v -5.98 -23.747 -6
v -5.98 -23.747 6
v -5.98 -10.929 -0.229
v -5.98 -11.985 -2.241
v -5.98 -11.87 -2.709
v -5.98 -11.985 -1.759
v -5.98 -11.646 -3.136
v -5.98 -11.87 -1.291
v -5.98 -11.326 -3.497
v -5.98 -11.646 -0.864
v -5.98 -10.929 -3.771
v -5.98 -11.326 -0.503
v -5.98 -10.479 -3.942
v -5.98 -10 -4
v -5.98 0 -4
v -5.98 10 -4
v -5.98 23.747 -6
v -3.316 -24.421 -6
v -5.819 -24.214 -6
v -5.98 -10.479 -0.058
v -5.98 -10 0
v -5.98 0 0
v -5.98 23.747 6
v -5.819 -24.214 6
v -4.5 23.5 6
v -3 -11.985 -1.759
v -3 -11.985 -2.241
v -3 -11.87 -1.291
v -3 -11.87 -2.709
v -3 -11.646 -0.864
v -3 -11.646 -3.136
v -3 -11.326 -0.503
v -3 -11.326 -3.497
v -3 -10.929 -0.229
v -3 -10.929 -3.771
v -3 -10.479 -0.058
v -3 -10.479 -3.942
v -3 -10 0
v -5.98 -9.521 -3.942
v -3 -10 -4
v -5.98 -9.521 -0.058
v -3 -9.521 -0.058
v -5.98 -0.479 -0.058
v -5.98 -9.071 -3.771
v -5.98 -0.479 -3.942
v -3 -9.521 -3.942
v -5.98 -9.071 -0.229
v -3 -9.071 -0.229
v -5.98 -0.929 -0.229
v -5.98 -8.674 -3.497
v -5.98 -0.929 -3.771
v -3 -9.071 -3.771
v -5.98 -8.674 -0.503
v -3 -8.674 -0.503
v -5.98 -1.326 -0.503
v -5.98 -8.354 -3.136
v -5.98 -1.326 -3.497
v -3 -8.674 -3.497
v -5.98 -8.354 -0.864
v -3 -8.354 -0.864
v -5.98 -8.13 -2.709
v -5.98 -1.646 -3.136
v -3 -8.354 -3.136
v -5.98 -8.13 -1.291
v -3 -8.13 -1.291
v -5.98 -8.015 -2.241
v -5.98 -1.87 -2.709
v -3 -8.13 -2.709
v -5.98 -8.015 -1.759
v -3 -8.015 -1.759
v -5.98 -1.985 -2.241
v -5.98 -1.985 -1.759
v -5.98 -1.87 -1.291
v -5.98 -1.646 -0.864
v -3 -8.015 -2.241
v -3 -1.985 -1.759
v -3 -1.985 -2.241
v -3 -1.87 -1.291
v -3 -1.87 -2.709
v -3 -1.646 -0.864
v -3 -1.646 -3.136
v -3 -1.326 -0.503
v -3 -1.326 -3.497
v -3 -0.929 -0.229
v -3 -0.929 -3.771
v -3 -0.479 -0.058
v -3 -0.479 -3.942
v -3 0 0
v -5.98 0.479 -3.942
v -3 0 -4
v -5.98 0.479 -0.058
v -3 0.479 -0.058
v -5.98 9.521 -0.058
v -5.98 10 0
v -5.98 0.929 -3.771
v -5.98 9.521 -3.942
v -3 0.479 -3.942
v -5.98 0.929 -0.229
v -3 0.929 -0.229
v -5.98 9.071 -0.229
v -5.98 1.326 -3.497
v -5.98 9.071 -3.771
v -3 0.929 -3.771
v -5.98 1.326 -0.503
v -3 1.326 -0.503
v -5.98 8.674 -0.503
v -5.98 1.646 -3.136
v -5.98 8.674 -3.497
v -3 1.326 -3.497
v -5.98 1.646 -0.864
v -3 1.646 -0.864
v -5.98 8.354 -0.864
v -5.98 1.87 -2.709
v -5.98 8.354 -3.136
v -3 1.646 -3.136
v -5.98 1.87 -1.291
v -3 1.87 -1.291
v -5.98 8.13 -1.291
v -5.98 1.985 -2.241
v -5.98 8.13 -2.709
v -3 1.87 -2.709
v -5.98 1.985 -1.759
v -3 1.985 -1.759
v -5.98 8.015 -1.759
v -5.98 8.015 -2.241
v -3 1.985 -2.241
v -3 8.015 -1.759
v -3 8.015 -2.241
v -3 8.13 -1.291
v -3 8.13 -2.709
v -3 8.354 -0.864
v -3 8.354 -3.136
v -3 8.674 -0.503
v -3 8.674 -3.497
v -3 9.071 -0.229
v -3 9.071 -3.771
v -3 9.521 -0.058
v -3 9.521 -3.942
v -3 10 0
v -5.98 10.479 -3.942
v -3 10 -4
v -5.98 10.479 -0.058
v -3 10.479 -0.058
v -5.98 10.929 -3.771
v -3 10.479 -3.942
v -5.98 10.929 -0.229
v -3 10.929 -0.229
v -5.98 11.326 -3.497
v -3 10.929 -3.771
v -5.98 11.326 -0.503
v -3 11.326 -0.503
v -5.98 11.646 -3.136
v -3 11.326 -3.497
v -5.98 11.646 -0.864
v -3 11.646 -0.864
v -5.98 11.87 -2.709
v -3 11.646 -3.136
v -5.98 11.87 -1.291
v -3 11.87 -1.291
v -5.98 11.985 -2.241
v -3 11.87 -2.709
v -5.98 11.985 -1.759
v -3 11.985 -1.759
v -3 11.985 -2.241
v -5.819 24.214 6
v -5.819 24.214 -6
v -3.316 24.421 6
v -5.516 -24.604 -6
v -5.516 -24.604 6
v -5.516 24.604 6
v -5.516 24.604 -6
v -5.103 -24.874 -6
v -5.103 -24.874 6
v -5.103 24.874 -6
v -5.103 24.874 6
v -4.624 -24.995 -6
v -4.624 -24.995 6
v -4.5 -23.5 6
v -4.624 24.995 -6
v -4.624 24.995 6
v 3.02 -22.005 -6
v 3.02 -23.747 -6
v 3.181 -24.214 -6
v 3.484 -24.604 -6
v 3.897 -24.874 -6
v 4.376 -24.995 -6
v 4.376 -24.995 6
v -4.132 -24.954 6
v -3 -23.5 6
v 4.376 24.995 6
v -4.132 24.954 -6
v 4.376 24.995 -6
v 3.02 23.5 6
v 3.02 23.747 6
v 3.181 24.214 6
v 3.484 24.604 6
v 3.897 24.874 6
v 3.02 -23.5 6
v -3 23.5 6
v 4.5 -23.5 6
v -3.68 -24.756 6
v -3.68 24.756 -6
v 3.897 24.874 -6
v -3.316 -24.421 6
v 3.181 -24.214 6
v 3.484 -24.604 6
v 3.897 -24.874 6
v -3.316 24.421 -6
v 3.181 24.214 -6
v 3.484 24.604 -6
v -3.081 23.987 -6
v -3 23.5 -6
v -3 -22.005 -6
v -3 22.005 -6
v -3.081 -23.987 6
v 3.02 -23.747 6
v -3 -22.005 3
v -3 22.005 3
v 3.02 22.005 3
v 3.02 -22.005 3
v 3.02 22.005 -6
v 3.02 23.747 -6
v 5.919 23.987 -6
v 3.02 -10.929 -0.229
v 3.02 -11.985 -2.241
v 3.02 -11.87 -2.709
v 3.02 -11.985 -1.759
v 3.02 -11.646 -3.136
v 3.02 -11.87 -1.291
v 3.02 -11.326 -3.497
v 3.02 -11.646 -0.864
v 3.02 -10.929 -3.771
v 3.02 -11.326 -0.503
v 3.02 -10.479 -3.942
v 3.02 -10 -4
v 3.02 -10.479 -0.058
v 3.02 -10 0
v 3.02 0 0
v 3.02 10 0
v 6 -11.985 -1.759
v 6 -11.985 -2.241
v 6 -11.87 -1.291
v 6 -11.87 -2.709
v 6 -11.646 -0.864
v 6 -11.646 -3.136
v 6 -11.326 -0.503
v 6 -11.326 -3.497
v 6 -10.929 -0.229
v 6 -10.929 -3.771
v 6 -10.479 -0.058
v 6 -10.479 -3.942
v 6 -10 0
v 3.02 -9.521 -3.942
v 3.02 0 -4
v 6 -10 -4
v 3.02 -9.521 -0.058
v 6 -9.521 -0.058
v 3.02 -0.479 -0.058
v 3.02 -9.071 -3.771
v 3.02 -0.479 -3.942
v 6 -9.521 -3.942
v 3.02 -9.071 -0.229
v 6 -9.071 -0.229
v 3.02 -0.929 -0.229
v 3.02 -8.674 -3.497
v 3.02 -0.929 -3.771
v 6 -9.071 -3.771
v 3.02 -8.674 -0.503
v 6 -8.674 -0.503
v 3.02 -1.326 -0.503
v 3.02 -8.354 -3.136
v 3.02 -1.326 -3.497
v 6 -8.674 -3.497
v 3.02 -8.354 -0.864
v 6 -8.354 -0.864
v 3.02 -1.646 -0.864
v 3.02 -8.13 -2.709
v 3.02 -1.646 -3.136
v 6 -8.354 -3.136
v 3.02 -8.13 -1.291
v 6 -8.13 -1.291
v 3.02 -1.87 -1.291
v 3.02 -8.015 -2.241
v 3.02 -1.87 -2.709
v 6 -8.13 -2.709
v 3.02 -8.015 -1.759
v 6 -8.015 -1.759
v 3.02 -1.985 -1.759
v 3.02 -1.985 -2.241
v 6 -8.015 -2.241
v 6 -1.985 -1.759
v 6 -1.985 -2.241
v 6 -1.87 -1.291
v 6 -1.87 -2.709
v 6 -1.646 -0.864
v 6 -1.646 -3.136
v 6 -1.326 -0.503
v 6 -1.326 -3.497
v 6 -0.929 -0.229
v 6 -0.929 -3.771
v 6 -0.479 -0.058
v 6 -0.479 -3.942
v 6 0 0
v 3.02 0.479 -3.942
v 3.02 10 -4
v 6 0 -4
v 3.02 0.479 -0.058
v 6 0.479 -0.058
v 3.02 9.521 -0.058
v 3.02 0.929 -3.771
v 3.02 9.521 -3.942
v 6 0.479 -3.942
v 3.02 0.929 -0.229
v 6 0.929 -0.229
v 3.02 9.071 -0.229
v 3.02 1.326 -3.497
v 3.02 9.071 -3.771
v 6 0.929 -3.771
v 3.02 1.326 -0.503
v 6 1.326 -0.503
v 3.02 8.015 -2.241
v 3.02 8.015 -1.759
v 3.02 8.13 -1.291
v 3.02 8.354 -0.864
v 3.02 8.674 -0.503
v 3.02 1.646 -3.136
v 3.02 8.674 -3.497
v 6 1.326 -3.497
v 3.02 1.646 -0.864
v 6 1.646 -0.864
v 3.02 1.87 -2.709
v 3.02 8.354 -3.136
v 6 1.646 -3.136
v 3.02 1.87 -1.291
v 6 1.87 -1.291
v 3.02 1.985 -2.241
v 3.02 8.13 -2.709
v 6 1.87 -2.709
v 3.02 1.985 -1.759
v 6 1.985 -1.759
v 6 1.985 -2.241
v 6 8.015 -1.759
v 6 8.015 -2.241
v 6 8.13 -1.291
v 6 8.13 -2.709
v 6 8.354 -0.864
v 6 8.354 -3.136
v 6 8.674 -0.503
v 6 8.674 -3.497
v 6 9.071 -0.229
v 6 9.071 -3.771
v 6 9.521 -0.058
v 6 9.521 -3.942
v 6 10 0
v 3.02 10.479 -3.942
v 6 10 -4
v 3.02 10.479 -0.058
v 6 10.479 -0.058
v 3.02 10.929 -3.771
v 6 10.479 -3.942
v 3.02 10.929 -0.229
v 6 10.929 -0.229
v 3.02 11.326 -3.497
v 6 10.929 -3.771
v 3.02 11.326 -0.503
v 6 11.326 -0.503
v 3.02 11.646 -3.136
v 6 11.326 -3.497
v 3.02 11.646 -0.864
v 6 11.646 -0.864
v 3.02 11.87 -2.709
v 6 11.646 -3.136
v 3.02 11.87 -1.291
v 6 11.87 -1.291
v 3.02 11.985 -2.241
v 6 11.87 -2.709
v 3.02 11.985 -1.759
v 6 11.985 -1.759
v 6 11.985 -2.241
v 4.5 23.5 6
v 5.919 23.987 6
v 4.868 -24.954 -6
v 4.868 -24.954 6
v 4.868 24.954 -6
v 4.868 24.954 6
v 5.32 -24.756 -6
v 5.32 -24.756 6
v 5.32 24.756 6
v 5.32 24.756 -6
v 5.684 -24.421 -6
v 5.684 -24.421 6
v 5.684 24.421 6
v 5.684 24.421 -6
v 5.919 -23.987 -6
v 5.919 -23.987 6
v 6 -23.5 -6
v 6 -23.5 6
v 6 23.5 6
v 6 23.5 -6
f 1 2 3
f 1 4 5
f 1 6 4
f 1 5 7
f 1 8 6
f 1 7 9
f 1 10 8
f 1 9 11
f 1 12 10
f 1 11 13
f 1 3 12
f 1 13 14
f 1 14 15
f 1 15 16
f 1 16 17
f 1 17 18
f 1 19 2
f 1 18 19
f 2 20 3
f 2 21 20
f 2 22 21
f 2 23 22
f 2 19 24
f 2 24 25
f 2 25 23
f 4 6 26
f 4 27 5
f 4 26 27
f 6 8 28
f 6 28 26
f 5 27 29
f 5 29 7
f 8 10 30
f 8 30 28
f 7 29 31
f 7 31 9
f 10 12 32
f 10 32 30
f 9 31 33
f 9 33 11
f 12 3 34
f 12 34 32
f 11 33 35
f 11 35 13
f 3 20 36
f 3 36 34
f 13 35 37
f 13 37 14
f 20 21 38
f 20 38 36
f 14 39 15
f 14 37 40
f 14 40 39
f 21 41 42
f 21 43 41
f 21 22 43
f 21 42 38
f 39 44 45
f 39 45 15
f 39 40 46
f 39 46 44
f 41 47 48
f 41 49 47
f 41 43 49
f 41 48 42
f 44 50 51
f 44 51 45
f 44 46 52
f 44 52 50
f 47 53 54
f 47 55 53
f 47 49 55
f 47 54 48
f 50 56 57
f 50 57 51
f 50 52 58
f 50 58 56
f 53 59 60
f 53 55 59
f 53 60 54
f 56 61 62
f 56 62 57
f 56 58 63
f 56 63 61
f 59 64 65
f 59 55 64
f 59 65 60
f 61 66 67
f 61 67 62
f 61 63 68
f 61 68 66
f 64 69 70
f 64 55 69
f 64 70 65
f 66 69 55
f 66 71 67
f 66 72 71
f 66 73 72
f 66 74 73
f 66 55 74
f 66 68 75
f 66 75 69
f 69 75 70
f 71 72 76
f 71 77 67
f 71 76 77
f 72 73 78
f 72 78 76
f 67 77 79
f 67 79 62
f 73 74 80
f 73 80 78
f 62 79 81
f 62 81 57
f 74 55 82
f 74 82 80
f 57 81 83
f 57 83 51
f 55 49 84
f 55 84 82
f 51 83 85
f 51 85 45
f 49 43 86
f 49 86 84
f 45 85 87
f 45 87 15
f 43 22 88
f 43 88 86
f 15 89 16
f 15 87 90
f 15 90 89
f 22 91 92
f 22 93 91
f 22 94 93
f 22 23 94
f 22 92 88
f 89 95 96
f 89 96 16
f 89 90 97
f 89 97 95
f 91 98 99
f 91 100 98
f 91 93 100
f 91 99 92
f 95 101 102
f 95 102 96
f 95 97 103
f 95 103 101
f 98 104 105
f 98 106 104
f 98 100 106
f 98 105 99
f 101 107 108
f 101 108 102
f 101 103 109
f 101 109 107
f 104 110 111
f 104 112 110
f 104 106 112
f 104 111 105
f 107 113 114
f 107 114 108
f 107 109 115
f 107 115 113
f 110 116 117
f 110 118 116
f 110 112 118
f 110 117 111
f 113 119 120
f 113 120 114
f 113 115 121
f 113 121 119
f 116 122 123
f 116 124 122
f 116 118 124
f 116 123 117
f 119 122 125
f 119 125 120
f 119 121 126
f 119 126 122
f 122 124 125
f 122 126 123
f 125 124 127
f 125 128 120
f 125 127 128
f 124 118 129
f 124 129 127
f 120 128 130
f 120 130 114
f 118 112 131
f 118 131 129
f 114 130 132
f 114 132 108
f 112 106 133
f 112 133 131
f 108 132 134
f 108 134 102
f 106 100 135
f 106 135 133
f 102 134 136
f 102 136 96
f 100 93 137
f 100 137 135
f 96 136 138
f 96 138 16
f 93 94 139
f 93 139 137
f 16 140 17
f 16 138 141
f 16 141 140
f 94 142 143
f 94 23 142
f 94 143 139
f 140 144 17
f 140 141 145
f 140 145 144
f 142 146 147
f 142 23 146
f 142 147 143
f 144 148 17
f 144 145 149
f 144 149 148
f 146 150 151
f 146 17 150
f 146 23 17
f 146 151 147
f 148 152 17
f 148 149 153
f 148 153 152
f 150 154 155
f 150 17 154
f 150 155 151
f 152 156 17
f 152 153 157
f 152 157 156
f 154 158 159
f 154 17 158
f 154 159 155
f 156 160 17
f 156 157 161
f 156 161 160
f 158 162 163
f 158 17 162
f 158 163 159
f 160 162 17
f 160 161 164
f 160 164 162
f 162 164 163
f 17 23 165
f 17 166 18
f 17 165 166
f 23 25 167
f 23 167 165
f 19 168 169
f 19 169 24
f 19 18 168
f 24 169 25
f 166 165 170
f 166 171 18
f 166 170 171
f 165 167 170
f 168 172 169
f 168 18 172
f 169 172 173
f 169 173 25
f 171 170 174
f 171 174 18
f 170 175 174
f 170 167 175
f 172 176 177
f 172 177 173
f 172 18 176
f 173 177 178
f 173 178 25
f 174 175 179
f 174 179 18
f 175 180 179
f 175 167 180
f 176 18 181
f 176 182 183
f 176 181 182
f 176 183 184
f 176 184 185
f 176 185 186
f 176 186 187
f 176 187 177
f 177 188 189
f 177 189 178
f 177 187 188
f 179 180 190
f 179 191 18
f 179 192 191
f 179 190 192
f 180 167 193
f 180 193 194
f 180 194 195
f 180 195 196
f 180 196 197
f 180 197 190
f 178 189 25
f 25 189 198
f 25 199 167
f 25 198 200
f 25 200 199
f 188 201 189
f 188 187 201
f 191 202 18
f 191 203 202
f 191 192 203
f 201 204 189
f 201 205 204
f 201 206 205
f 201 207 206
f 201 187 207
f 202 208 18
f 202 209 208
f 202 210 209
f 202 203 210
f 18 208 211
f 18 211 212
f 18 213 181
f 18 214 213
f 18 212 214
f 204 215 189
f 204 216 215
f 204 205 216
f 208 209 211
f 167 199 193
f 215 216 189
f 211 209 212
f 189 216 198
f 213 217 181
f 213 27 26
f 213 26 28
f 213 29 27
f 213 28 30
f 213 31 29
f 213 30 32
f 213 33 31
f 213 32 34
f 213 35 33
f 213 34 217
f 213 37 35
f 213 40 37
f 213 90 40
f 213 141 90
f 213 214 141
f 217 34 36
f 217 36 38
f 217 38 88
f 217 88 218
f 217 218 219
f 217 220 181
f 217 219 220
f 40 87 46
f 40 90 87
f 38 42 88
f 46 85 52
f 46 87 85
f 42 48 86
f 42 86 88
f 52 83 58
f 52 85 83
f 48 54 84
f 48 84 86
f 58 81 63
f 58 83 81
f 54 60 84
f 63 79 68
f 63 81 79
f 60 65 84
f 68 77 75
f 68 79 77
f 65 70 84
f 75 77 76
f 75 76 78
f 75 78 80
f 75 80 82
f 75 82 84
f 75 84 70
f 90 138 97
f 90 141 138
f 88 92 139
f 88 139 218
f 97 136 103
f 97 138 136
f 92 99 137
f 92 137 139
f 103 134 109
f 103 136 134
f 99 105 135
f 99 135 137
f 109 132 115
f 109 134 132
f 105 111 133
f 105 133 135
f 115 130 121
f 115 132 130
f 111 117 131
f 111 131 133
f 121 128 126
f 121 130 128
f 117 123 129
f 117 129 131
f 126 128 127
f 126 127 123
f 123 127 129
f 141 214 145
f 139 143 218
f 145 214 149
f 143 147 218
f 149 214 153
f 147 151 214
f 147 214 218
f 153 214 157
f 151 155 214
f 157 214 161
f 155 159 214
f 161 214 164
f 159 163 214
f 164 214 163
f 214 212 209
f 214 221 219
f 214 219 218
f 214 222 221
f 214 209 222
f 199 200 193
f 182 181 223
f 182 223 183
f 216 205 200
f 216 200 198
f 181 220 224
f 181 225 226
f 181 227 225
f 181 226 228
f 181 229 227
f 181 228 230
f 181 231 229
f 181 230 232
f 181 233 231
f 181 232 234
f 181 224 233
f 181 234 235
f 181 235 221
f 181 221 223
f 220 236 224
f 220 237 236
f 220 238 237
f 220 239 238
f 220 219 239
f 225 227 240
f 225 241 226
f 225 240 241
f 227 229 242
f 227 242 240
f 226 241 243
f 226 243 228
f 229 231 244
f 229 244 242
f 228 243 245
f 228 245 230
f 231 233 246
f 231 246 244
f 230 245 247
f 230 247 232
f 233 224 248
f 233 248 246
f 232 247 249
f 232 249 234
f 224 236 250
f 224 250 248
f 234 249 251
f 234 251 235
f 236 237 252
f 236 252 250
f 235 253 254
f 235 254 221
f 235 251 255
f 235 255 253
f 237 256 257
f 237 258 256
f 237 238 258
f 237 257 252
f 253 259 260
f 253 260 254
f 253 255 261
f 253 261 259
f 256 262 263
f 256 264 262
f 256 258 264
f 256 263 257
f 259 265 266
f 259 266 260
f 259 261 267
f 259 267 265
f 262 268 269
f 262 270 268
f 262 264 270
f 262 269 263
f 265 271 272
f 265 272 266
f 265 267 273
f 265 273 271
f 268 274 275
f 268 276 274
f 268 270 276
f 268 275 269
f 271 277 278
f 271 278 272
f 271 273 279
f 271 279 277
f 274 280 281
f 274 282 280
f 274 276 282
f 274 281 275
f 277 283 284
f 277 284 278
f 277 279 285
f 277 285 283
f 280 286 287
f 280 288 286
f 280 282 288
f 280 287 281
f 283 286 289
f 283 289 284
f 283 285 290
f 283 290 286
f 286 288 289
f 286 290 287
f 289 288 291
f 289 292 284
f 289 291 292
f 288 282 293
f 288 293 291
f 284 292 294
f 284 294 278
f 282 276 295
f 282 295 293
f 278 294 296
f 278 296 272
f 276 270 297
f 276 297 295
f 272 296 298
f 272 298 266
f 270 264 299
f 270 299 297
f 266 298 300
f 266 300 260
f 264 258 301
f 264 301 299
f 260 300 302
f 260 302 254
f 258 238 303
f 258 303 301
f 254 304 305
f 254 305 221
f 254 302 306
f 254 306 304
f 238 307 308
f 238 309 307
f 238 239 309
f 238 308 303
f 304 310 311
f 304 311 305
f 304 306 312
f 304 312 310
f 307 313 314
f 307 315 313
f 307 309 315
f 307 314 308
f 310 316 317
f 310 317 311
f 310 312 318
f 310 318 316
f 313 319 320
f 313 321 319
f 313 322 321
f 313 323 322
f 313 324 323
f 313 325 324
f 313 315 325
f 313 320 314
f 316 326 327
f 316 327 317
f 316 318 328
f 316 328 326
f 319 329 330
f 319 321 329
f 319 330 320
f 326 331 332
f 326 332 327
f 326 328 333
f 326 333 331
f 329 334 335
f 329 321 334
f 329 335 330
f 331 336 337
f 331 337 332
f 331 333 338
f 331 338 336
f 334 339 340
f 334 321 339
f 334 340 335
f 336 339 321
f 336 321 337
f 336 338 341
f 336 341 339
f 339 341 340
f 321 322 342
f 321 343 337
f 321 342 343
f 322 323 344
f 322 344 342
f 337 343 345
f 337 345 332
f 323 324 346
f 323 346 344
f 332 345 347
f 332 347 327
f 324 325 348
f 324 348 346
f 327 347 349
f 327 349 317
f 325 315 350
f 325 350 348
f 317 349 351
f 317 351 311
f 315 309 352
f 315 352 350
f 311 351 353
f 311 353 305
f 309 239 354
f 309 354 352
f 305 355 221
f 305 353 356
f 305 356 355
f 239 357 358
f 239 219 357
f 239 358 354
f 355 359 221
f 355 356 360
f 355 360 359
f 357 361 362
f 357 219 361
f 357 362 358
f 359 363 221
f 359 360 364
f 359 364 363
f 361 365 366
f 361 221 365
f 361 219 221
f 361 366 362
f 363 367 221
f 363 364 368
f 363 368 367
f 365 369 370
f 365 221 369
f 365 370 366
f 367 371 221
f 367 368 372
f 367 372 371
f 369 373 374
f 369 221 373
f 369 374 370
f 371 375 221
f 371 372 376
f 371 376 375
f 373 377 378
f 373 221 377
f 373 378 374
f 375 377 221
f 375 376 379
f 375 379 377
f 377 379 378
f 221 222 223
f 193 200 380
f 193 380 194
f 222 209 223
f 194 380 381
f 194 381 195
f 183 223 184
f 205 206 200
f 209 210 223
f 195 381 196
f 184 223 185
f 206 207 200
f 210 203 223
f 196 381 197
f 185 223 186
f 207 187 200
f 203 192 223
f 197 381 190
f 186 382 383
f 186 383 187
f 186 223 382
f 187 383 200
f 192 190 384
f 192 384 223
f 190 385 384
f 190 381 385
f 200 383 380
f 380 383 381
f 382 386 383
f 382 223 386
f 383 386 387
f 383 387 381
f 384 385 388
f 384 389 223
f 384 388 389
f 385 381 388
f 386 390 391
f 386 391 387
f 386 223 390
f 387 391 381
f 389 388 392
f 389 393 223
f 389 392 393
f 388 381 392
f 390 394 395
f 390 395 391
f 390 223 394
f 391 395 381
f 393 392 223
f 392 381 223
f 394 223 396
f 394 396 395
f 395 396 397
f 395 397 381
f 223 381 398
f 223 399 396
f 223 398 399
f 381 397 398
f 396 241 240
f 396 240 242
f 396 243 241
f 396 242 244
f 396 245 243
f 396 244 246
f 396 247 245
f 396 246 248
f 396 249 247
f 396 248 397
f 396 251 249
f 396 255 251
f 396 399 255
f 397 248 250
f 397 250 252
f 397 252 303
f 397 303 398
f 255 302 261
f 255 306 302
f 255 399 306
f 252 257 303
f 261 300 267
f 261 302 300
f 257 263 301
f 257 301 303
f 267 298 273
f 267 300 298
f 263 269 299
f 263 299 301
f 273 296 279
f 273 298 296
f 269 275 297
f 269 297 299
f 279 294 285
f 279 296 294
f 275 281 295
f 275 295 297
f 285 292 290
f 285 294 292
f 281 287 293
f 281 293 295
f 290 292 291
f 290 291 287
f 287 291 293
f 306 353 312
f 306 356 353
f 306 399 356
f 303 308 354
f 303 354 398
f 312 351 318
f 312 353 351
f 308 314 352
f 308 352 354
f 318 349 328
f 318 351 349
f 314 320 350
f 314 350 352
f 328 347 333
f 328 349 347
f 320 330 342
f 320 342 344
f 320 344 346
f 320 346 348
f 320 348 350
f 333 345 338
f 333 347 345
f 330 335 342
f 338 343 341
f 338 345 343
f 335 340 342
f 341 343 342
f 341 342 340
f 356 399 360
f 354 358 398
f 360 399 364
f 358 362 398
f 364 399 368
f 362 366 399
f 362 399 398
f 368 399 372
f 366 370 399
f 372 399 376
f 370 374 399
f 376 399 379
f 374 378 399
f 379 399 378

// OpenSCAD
$fa=1/1;
$fs=1/2;
module camera_spacer() {
  height=12;
  width=50;
  depth=12;
  wall=3;
  rounded=5;
  n_holes=3;
  hole_distance=10;
  d_bolt=4;
  d_nut=0;//8;
  nuts_through=true;
  bolts_offset=4;
  bissl=1/100;
  points=[for (i=[-1,1]) for (j=[-1,1]) [i*(height/2-wall/2),j*(width/2-wall/2)]];
  connections=[[0,1],[2,3],[2,0],[3,1]];//,[1,3],[2,0]];
  difference() {
    for (c=connections) hull() {
      translate(points[c[0]])cylinder (d=wall,h=depth,center=true);
      translate(points[c[1]])cylinder (d=wall,h=depth,center=true);
    }
  for (t=[-hole_distance*(n_holes-1)/2:hole_distance:hole_distance*(n_holes-1)/2])
    translate([0,t,bolts_offset-depth/2]) {
      translate([-height/2-bissl,0,0]) rotate([0,90,0])cylinder(d=d_bolt,h=wall+2*bissl);
      translate([-height/2-bissl+wall/2,0,0])rotate([90,0,90])cylinder(d=d_nut,h=wall+2*bissl,$fn=6);
      translate([height/2-wall-bissl,0,0])rotate([0,90,0])cylinder(d=d_bolt,h=wall+2*bissl);
      translate([height/2-wall-bissl-wall/2,0,0])rotate([90,0,90])cylinder(d=d_nut,h=wall+2*bissl,$fn=6);
      if(nuts_through)translate([-height/2-bissl+wall/2,0,0])rotate([90,0,90])cylinder(d=d_nut,h=height-wall,$fn=6);
      
    }
  }
  difference() {
    translate([-(height-wall)/2,-(width-wall)/2,depth/2-wall])cube([height-wall,width-wall,wall]);
    translate([-(height-4*wall)/2,-(width-4*wall)/2,-bissl+depth/2-wall])cube([height-4*wall,width-4*wall,wall+2*bissl]);
  }
}
camera_spacer();
